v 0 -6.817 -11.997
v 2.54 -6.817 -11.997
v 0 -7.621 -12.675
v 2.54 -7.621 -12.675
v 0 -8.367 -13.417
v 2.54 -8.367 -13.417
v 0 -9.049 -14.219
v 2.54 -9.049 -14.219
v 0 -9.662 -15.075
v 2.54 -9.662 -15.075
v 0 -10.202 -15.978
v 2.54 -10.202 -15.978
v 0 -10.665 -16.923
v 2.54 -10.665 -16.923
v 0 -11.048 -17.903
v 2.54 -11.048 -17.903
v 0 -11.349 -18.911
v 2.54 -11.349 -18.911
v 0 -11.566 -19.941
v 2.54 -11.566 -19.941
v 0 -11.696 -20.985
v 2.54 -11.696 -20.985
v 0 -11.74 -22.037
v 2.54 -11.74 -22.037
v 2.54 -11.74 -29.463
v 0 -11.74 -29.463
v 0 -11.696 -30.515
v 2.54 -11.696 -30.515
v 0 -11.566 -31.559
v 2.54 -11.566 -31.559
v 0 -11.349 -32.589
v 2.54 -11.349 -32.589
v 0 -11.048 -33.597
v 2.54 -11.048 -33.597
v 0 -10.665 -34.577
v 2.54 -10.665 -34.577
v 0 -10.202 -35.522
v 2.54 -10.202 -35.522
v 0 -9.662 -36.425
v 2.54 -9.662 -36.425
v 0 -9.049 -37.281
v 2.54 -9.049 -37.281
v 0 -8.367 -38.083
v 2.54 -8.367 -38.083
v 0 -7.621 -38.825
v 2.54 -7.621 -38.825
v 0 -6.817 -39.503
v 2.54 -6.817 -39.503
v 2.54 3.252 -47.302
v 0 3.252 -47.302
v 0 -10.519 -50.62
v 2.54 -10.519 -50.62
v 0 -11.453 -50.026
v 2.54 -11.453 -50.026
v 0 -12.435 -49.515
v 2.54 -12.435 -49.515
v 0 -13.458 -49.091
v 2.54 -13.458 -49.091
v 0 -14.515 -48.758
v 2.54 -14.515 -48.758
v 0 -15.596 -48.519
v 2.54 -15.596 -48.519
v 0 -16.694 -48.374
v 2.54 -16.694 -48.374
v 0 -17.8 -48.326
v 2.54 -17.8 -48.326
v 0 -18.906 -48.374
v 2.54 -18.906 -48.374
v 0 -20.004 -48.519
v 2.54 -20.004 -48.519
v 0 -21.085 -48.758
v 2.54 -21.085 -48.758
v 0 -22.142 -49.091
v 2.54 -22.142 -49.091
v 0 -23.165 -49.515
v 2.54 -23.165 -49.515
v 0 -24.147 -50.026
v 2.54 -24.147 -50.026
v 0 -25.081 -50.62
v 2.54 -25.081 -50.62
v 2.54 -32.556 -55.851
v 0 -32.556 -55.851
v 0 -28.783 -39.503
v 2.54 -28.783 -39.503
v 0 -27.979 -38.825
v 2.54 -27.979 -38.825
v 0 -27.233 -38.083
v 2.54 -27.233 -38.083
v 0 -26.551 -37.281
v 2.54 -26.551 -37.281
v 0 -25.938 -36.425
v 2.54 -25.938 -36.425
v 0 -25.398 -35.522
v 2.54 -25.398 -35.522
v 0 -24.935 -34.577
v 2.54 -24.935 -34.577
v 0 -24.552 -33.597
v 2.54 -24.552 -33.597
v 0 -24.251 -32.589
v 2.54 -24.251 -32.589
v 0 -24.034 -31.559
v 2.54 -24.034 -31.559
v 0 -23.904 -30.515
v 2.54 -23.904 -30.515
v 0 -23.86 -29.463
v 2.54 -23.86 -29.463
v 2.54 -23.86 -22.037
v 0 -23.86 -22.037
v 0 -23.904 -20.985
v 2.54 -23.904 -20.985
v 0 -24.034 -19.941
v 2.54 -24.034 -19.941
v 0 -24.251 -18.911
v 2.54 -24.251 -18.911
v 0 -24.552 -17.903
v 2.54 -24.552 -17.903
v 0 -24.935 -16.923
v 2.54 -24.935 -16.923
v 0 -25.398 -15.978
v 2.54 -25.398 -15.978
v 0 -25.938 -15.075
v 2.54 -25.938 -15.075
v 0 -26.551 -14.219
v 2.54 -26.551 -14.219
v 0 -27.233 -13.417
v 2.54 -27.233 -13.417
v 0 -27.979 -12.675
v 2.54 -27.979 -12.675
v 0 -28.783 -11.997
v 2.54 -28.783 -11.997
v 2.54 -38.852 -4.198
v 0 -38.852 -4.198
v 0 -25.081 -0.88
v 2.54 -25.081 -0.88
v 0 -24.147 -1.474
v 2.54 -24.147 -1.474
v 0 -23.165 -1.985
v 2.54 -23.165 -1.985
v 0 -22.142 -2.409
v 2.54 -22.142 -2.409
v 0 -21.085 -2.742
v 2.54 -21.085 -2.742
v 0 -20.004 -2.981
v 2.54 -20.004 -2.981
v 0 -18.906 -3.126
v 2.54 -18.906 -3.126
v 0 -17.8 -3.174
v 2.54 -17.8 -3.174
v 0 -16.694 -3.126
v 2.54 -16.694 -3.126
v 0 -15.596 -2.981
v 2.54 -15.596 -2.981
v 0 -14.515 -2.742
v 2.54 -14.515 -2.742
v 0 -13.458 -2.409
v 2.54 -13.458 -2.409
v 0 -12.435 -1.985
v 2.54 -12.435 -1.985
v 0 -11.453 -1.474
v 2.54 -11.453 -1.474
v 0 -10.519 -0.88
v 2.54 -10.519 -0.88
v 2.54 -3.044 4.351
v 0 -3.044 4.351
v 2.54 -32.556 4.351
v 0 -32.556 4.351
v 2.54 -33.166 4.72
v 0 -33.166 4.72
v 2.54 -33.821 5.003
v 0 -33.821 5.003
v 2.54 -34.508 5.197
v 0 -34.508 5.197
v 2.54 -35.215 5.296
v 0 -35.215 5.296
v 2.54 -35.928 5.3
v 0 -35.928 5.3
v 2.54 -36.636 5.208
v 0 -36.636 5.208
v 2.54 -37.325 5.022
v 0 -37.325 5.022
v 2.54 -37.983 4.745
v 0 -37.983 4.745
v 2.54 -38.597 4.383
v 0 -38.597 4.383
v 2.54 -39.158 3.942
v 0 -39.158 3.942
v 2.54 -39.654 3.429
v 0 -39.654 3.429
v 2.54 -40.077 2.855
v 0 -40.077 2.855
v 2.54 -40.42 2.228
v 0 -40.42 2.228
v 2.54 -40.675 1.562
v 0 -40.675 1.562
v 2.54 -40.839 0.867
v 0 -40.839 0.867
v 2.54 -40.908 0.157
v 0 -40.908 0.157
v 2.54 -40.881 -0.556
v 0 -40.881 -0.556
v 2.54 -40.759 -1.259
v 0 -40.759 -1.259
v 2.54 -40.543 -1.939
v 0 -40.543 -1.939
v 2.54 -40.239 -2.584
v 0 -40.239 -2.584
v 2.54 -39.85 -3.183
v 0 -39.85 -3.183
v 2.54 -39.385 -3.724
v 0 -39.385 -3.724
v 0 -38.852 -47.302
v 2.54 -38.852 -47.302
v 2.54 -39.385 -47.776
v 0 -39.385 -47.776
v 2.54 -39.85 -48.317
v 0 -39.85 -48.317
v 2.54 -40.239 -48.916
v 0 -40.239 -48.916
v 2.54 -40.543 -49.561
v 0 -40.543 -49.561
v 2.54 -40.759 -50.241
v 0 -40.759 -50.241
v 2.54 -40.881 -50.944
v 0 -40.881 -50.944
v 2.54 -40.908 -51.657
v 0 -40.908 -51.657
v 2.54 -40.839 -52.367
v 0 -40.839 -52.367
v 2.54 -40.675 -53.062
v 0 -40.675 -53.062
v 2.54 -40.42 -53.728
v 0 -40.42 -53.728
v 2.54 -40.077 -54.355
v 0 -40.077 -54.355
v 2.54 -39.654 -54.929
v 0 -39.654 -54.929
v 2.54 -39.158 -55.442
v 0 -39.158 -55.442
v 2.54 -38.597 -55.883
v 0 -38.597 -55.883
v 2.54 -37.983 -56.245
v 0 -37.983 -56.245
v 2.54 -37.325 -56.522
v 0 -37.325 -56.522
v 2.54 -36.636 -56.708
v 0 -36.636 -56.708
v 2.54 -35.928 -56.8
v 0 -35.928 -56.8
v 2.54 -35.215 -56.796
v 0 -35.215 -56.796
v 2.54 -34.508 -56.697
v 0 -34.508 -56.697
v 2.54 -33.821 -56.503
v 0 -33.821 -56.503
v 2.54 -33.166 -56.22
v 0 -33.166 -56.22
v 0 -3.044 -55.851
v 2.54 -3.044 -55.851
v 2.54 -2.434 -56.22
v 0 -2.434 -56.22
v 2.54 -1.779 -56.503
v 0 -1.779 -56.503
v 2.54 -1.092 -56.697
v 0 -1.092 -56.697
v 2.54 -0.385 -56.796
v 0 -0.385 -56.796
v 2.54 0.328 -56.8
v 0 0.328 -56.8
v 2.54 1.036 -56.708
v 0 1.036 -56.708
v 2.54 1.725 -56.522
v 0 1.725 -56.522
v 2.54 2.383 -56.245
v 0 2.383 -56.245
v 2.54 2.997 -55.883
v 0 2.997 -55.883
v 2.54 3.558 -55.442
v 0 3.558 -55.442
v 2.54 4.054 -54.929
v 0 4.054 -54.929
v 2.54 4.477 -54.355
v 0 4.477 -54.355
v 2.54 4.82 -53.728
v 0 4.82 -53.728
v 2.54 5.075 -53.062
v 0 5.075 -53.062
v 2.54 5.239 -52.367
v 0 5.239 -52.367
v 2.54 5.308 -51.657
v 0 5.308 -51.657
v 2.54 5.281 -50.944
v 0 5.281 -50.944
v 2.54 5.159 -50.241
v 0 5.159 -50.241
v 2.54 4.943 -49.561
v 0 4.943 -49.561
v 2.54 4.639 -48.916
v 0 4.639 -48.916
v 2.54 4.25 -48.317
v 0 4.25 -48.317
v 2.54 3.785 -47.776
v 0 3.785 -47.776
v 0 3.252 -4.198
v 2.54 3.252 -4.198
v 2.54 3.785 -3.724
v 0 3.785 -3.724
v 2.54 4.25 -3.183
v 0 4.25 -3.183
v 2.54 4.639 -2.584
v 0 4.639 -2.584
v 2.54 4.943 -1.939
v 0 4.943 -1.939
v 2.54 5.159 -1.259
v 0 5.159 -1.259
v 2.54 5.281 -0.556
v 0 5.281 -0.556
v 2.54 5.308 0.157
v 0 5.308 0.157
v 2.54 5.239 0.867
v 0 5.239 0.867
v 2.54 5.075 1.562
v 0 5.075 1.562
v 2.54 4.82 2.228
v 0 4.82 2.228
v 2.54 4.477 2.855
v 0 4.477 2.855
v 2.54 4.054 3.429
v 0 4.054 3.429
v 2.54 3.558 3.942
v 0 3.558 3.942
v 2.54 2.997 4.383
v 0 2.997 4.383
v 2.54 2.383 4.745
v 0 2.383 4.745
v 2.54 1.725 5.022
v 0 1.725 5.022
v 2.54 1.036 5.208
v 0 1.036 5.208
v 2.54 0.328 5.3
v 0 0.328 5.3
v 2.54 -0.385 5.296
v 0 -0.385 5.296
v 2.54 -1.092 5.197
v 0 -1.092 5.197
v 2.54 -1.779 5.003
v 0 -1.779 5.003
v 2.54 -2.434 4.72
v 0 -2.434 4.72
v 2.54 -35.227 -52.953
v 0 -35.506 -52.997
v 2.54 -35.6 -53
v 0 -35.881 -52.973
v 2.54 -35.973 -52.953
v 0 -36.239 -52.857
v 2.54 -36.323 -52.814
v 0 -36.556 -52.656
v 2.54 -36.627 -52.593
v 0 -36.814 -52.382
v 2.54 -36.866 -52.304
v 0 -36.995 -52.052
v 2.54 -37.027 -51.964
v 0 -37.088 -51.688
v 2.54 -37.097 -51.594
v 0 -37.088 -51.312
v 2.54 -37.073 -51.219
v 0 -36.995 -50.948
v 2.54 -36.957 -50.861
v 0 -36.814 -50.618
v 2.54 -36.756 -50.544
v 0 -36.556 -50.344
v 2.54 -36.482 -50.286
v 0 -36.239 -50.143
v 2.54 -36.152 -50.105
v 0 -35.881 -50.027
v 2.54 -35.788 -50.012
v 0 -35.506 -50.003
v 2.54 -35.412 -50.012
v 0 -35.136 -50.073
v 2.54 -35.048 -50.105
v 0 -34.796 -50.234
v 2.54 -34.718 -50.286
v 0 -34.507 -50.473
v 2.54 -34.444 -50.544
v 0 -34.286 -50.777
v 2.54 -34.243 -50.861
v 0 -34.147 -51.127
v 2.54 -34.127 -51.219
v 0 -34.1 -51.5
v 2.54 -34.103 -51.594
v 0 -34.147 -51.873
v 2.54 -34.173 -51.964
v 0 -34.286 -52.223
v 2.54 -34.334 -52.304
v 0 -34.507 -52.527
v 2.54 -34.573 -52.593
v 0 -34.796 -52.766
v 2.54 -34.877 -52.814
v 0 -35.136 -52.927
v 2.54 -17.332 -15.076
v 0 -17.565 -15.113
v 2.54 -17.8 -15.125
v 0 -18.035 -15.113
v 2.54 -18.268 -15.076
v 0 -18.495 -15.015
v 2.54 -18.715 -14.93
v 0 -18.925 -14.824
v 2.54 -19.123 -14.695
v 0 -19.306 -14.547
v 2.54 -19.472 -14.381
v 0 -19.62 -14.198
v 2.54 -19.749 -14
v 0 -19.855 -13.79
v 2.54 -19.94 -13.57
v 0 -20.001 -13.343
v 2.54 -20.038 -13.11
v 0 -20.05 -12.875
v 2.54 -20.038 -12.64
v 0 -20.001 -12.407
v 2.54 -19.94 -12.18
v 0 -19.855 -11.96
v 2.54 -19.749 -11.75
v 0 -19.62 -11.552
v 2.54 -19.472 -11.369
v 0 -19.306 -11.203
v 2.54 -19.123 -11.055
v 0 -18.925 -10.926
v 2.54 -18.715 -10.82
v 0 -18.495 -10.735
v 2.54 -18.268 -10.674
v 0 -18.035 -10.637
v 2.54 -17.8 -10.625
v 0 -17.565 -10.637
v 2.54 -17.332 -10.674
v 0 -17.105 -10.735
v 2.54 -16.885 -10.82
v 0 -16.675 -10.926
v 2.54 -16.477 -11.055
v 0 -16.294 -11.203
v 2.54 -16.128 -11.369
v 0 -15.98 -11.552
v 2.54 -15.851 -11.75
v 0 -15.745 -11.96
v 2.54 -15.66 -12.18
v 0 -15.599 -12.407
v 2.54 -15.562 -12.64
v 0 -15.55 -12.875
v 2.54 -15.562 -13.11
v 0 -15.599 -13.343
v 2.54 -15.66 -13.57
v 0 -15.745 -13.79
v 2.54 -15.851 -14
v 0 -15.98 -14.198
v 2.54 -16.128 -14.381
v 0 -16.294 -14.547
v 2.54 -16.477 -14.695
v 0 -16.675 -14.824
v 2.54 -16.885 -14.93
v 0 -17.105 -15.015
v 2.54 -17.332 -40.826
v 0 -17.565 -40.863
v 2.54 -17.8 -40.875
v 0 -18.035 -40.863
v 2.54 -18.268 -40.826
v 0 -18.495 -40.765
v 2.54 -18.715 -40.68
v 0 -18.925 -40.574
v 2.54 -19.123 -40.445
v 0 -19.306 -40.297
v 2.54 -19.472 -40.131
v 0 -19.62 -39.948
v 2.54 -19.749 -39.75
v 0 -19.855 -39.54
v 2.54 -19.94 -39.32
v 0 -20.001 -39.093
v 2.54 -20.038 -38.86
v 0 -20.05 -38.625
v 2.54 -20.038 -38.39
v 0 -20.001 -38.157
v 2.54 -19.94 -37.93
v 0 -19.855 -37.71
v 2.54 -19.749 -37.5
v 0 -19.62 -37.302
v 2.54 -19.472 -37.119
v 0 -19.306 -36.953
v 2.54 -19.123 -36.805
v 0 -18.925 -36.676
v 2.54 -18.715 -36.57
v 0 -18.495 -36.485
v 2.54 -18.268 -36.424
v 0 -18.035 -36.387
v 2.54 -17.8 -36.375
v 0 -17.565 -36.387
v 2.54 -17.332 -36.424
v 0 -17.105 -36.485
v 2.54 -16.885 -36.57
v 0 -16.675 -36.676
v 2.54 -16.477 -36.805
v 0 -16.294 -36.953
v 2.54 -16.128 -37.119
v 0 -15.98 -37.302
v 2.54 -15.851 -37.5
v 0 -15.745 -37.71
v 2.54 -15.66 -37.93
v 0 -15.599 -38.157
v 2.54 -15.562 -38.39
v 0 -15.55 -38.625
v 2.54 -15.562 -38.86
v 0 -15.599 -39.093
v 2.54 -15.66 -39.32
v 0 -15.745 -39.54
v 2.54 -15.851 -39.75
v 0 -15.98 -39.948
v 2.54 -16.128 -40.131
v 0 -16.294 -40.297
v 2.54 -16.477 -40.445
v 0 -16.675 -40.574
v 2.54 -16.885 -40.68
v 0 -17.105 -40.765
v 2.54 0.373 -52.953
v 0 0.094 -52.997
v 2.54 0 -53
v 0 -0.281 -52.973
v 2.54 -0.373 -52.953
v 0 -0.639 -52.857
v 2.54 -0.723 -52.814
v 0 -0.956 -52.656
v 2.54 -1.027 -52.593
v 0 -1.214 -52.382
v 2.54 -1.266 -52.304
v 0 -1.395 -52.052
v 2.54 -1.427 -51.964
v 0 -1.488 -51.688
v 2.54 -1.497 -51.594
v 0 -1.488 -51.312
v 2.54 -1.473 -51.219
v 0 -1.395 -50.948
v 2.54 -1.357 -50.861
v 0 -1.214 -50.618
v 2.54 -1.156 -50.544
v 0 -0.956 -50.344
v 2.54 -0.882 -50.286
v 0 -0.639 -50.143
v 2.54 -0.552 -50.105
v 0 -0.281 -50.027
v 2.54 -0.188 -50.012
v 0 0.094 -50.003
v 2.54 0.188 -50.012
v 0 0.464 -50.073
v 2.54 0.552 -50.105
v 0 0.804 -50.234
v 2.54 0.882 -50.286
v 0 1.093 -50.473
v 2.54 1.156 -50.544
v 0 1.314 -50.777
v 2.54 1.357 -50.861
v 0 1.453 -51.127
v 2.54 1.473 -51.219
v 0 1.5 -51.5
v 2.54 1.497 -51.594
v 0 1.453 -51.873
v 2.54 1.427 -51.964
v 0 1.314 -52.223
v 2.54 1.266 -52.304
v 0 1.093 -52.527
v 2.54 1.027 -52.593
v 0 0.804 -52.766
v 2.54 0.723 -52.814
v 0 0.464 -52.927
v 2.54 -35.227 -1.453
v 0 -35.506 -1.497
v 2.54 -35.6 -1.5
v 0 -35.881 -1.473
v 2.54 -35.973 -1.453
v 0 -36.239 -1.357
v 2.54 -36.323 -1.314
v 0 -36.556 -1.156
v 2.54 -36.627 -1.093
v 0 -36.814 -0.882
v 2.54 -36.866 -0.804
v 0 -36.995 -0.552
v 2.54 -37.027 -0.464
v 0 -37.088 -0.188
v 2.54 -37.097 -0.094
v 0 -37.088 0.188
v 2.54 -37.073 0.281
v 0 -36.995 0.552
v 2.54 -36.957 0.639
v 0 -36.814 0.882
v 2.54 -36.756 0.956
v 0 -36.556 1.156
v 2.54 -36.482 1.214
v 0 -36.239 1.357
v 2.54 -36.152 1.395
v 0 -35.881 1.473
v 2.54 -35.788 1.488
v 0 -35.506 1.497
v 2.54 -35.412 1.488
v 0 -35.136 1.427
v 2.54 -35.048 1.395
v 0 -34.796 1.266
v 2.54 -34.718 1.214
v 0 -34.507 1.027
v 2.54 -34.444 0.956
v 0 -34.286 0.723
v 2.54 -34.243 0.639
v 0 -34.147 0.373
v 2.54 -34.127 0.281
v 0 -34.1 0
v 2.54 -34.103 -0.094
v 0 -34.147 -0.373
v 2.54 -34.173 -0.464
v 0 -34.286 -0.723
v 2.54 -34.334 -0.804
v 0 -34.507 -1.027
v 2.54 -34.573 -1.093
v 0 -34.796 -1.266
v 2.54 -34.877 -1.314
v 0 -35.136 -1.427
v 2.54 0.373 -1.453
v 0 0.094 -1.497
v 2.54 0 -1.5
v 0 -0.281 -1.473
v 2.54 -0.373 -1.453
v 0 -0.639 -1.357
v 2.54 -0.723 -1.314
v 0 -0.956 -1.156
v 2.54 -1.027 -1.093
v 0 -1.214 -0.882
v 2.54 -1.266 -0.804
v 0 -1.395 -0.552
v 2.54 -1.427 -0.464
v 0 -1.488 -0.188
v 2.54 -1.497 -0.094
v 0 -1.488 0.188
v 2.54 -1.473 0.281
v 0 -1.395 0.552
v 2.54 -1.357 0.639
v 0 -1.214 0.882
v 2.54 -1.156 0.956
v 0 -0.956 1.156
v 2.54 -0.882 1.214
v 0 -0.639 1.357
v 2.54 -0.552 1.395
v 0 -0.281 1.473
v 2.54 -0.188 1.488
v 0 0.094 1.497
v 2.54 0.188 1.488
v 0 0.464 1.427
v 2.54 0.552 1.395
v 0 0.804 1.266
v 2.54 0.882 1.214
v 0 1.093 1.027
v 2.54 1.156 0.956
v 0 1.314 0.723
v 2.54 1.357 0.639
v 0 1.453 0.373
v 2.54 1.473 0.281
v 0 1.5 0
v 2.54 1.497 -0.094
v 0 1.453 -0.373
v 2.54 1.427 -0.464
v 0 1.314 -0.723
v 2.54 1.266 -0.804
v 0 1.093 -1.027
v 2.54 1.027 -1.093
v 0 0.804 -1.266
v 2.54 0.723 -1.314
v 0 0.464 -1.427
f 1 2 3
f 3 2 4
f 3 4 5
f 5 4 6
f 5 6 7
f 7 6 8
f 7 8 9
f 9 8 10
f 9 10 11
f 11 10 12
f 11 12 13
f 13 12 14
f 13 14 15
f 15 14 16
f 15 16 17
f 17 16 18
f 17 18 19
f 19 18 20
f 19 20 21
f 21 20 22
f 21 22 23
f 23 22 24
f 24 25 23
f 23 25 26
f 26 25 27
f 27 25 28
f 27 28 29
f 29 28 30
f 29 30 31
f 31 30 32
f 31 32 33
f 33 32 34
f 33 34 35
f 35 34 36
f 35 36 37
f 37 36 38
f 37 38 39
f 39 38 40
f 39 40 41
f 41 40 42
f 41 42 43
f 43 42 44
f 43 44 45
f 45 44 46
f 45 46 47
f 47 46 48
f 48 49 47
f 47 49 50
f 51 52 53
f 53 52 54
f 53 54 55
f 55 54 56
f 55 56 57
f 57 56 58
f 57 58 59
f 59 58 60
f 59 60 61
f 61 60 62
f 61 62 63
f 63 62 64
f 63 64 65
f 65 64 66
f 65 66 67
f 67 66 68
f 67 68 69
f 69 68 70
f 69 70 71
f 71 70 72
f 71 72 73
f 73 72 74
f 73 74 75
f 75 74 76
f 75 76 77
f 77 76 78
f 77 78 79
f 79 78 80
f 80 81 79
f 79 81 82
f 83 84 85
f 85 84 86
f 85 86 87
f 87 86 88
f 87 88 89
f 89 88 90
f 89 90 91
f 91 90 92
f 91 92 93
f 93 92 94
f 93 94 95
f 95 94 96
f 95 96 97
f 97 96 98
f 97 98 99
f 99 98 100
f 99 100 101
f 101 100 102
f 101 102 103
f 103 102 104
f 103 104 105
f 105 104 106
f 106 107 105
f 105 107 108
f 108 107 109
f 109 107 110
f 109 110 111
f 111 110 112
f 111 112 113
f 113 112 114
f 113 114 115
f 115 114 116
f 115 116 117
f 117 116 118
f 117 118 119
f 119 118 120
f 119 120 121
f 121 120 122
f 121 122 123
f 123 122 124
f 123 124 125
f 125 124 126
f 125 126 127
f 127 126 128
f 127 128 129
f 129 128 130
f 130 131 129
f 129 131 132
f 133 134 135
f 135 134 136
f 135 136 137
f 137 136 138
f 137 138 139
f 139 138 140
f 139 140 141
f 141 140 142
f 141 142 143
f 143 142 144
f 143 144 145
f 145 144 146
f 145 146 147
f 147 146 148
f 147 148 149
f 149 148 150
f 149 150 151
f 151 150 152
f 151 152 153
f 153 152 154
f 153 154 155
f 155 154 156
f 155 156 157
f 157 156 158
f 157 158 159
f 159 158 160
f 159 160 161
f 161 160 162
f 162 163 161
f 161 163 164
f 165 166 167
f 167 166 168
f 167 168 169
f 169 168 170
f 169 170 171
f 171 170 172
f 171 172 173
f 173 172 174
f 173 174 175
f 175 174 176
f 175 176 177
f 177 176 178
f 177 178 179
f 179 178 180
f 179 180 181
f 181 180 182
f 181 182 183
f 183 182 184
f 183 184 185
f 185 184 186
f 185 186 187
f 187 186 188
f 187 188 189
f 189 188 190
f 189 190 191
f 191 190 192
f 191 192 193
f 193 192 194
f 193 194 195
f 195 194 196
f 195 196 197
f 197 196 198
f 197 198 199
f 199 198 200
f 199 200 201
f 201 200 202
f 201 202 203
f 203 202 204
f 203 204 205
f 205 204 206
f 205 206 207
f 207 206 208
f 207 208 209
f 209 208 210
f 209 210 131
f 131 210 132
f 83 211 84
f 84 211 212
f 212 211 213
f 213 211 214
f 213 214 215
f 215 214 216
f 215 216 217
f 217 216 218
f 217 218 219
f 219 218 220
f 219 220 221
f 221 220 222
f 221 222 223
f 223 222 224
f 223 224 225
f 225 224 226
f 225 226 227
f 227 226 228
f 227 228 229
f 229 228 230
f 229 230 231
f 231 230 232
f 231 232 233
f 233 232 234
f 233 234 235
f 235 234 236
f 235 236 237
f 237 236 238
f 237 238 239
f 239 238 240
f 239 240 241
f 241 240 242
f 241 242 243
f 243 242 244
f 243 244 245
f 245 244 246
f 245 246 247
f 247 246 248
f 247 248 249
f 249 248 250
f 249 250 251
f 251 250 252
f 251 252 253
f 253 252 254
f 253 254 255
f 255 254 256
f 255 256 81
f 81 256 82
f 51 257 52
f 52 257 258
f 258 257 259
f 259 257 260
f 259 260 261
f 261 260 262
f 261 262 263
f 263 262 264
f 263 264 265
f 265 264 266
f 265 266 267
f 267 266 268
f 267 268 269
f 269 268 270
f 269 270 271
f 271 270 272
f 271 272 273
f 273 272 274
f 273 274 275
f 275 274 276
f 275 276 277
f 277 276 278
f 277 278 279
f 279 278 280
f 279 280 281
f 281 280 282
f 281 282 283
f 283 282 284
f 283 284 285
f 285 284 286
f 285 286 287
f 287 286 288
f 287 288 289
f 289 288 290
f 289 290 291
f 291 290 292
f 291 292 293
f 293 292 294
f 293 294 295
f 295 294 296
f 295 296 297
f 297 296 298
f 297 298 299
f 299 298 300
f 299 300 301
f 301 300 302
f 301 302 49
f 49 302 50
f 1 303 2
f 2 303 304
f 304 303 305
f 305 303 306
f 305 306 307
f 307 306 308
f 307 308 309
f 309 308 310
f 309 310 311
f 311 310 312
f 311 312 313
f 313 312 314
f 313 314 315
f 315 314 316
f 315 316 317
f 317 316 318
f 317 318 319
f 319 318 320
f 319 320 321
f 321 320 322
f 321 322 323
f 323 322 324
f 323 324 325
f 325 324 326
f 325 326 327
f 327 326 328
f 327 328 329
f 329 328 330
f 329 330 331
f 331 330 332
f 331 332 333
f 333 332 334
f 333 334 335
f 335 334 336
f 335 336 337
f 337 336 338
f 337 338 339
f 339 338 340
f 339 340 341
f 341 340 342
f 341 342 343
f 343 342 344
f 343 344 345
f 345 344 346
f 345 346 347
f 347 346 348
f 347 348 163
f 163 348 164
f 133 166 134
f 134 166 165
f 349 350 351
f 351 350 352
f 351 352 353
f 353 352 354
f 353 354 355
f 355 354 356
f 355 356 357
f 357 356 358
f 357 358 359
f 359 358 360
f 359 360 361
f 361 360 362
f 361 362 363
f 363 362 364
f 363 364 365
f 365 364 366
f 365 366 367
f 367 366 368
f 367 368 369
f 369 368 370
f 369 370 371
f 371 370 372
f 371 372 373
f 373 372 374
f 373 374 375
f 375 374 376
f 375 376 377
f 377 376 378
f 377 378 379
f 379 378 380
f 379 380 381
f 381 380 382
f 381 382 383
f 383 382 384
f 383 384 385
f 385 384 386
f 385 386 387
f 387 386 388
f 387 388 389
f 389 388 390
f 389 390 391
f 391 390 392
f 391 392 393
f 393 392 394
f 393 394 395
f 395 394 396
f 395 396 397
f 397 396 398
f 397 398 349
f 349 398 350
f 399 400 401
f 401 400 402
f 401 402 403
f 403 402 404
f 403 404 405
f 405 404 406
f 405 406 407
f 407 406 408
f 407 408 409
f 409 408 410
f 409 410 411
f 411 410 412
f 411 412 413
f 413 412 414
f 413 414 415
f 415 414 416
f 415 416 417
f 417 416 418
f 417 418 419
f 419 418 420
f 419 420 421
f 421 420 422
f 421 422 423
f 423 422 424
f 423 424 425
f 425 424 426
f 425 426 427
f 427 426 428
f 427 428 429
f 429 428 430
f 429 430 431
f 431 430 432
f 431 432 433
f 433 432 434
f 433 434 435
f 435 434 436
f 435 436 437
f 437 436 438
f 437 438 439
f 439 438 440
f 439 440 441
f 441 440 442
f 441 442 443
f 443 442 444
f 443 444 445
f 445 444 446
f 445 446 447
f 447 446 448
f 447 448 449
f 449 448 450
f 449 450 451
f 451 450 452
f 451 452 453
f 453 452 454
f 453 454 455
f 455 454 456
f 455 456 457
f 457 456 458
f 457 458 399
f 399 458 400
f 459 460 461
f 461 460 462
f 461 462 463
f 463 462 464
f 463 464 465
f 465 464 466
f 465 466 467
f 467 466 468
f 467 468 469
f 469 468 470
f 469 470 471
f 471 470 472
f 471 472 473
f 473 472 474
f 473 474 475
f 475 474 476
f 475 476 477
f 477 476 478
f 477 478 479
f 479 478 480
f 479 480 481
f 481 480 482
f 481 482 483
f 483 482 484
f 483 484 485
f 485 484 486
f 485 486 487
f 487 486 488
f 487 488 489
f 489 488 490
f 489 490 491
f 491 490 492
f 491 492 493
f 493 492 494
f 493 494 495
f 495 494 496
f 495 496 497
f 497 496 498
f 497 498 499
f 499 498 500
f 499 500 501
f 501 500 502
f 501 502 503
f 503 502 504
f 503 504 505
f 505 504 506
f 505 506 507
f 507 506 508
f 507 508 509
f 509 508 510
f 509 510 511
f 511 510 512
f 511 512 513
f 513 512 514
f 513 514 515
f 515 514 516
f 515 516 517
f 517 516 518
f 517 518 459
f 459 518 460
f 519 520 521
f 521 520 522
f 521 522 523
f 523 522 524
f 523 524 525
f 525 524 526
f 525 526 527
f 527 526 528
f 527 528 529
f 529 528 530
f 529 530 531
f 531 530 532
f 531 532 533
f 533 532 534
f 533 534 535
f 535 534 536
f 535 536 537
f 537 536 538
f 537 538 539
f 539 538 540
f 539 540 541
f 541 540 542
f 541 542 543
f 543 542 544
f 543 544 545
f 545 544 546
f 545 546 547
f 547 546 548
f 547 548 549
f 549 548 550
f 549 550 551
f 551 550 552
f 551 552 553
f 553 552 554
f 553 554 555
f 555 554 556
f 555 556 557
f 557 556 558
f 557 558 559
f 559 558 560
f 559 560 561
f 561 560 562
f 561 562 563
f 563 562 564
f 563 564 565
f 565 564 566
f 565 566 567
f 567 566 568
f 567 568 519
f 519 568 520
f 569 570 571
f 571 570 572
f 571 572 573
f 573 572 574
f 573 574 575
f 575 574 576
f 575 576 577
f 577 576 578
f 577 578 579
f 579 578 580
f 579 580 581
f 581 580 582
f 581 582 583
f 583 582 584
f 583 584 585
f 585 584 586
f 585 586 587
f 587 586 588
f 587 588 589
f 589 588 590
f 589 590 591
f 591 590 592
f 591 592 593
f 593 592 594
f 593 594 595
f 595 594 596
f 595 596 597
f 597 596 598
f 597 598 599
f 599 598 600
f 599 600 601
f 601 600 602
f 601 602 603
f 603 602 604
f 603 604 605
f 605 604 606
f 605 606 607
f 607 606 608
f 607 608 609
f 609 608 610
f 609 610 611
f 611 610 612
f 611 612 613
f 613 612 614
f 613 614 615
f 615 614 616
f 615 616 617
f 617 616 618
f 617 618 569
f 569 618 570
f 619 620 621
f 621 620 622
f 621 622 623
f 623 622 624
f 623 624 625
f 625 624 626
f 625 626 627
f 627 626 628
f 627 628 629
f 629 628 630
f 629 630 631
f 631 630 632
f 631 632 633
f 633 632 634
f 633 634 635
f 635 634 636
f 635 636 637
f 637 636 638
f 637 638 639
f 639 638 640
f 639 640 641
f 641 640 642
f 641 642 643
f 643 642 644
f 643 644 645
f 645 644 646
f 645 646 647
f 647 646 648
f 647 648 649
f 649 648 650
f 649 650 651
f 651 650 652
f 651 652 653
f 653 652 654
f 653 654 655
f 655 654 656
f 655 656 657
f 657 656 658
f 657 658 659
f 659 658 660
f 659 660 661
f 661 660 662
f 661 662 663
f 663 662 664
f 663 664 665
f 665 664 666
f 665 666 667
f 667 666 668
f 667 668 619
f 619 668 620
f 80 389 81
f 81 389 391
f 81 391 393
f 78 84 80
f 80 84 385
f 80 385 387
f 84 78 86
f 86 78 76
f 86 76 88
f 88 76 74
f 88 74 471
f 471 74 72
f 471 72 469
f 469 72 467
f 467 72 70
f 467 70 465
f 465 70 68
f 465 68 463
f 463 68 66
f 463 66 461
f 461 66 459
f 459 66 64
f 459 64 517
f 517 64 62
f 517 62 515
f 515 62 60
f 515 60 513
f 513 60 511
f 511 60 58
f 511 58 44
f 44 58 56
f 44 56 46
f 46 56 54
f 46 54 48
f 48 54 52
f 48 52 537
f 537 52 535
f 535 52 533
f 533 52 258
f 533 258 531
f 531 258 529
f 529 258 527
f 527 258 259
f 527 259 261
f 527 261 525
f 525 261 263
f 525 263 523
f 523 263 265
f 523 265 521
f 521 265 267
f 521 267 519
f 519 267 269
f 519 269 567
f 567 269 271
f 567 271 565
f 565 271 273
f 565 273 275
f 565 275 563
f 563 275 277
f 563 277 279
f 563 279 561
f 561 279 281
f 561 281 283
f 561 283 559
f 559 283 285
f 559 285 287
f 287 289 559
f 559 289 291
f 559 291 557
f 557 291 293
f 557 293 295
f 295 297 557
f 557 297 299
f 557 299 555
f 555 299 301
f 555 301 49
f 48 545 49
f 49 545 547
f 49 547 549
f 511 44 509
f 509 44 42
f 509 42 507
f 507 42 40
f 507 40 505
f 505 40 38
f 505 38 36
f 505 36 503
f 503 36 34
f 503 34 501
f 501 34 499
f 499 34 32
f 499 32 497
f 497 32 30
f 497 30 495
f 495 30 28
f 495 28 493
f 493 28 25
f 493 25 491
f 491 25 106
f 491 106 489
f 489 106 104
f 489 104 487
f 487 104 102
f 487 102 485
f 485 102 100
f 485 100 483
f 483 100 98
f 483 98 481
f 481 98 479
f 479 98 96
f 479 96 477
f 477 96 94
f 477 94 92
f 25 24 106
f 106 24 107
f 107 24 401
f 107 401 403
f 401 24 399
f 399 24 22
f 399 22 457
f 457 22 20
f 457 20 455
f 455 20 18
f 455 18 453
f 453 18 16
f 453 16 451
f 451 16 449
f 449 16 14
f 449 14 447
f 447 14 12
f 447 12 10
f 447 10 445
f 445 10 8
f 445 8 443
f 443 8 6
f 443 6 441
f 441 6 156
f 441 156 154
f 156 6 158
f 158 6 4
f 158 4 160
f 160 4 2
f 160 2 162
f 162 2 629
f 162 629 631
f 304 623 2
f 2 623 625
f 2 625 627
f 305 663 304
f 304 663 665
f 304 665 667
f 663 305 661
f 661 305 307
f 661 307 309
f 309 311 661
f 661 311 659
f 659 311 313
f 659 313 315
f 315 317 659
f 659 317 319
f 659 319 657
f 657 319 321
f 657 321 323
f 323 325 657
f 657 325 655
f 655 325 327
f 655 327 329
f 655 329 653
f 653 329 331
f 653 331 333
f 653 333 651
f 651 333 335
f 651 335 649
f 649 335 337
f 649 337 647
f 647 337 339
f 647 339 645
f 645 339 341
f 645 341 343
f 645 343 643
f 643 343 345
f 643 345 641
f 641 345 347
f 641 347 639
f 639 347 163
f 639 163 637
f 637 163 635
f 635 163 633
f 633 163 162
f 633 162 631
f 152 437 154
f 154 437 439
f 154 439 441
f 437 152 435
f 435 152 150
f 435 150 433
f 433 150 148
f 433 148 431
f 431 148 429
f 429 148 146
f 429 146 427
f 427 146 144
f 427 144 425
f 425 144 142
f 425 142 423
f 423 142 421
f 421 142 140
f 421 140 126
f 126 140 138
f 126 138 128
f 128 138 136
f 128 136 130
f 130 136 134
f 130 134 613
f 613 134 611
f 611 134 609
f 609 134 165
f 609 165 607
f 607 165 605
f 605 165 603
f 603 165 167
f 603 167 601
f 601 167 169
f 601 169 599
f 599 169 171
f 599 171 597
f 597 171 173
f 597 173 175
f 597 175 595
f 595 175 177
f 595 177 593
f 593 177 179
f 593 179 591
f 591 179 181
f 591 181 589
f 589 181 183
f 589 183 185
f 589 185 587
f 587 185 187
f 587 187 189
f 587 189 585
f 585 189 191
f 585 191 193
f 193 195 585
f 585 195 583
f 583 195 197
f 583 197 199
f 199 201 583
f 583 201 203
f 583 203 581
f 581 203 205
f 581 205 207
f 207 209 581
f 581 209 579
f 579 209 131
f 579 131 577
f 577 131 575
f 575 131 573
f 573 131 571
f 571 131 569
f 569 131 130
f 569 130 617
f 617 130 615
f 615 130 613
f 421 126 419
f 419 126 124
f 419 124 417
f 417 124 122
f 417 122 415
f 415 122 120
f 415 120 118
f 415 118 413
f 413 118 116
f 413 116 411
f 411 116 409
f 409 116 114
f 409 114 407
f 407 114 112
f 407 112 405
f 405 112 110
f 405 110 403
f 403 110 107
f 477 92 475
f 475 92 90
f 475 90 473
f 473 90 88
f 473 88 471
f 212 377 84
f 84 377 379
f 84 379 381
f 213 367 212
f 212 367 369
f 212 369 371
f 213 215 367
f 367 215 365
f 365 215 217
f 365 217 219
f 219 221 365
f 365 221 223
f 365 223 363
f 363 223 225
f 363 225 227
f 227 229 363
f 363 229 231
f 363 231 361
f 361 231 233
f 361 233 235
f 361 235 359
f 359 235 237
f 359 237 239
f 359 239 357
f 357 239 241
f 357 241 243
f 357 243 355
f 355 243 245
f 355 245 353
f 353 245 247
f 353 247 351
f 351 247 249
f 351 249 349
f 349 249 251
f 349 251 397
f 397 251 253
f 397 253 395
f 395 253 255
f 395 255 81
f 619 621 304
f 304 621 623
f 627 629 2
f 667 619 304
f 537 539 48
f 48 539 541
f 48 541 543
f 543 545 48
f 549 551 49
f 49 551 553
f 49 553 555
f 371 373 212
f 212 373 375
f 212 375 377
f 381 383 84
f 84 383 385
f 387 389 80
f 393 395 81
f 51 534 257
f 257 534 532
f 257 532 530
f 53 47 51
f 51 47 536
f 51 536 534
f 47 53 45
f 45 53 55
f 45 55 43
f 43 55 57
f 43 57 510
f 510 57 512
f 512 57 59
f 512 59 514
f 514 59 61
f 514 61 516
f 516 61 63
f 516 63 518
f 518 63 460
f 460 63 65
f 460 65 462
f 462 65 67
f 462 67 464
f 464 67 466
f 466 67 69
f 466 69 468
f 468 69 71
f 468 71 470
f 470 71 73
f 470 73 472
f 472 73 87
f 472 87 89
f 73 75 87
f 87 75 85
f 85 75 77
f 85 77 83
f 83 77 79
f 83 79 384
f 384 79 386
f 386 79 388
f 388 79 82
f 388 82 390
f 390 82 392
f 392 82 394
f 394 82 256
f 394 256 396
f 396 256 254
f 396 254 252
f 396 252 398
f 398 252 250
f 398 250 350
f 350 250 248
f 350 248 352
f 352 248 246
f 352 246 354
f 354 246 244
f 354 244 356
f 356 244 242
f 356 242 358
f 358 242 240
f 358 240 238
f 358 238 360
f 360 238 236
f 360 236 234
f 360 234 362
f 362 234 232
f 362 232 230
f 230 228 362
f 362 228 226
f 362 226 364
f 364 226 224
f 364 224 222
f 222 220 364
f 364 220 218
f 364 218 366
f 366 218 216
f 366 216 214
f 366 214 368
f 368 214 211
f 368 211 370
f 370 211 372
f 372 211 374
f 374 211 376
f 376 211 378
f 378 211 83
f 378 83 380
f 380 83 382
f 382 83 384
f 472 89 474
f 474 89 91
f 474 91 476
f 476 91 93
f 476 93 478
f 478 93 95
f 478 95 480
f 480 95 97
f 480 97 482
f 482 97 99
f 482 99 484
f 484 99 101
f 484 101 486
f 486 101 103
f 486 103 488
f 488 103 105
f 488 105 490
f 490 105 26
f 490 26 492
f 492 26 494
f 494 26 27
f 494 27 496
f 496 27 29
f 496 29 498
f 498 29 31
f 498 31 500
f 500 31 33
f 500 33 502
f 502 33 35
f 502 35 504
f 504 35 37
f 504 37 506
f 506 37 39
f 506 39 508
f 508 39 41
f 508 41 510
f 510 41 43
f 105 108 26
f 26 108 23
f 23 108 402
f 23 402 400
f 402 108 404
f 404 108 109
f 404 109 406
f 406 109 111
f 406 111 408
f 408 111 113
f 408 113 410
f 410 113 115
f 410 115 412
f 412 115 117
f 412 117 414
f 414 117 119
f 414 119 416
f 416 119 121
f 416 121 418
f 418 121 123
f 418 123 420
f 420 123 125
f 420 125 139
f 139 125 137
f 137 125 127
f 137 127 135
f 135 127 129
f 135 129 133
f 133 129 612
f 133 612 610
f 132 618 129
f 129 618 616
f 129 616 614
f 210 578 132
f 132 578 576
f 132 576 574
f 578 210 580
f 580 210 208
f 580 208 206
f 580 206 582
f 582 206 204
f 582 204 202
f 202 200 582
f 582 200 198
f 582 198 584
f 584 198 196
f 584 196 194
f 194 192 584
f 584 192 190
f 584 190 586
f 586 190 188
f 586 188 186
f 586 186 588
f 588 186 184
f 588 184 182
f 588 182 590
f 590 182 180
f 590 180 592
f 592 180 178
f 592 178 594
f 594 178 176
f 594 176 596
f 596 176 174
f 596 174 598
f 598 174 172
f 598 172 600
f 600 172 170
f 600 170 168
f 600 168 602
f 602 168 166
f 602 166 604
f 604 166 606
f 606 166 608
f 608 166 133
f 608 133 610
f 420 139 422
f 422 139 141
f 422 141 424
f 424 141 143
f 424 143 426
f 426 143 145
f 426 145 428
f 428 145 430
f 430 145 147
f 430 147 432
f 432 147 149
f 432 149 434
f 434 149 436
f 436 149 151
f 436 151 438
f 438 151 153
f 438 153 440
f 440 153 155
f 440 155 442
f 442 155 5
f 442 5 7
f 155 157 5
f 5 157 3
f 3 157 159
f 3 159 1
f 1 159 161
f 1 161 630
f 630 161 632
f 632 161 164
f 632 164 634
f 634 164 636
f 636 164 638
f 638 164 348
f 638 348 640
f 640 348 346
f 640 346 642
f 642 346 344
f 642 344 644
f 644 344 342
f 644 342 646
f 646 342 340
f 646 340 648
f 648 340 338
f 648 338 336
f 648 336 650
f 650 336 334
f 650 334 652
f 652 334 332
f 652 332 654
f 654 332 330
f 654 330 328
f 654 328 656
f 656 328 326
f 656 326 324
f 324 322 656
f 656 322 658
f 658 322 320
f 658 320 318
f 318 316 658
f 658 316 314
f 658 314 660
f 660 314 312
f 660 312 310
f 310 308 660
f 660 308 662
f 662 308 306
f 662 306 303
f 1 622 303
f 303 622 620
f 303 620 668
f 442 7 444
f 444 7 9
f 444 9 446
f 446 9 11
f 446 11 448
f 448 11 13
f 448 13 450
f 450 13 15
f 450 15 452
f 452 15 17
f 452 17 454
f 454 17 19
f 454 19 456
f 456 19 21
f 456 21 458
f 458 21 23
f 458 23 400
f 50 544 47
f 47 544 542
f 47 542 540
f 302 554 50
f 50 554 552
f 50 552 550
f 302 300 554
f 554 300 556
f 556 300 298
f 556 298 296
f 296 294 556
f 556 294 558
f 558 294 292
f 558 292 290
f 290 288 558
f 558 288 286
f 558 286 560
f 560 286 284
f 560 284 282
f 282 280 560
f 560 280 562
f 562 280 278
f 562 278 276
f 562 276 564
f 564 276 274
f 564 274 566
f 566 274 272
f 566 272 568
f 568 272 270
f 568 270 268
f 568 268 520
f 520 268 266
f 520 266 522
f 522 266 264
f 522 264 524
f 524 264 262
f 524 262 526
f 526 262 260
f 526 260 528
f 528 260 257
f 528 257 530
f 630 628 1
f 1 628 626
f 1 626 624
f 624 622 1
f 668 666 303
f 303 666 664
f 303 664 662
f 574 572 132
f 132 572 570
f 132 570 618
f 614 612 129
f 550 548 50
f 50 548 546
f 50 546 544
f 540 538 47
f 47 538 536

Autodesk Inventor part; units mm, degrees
ref_plane "YZ Plane" through (0, 0, 0) normal (1, 0, 0) x (0, 1, 0)
ref_plane "XZ Plane" through (0, 0, 0) normal (0, 1, 0) x (-1, 0, 0)
ref_plane "XY Plane" through (0, 0, 0) normal (0, 0, 1) x (1, 0, 0)
sketch "Sketch1" plane through (0, 0, 0) normal (1, 0, 0) x (0, 1, 0)
  circle A0 centre (0, 0) radius 1.5
  line L0 (0, 0) -> (-35.6, 0)
  circle A1 centre (-35.6, 0) radius 1.5
  line L1 (0, 0) -> (0, -51.5)
  circle A2 centre (0, -51.5) radius 1.5
  circle A3 centre (-35.6, -51.5) radius 1.5
  line L2 (0, 0) -> (-35.6, 0)
  line L3 (-35.6, 0) -> (-35.6, -51.5)
  line L4 (-35.6, -51.5) -> (0, -51.5)
  line L5 (0, -51.5) -> (0, 0)
  line L6 (-17.8, 0) -> (-17.8, -51.5)
  line L7 (-17.8, -25.75) -> (-17.8, 0)
  line L8 (-17.8, -12.875) -> (-17.8, -51.5)
  line L9 (-17.8, -25.75) -> (-17.8, -51.5)
  line L10 (-17.8, -38.625) -> (-17.8, -12.875)
  circle A4 centre (-17.8, -12.875) radius 2.25
  circle A5 centre (-17.8, -38.625) radius 2.25
  line L11 (-15.9797, -9.3512) -> (-0.86, 1.229)
  line L12 (-19.6203, -9.3512) -> (-34.74, 1.229)
  line L13 (-15.55, -15.4984) -> (-15.55, -36.0016)
  line L14 (-20.05, -36.0016) -> (-20.05, -15.4984)
  line L15 (-19.6203, -42.1488) -> (-34.74, -52.729)
  line L16 (-21.2808, -38.5117) -> (-36.5185, -50.3141)
  line L17 (-21.2808, -12.9883) -> (-36.5185, -1.1859)
  line L18 (-14.3192, -12.9883) -> (0.9185, -1.1859)
  line L19 (-14.3192, -38.5117) -> (0.9185, -50.3141)
  line L20 (-15.9797, -42.1488) -> (-0.86, -52.729)
  arc A6 (-14.3192, -12.9883) -> (-15.55, -15.4984) centre (-12.375, -15.4984) ccw
  arc A7 (-15.55, -36.0016) -> (-14.3192, -38.5117) centre (-12.375, -36.0016) ccw
  arc A8 (-21.2808, -38.5117) -> (-20.05, -36.0016) centre (-23.225, -36.0016) ccw
  arc A9 (-20.05, -15.4984) -> (-21.2808, -12.9883) centre (-23.225, -15.4984) ccw
  arc A10 (-19.6203, -9.3512) -> (-15.9797, -9.3512) centre (-17.8, -6.7499) ccw
  arc A11 (-15.9797, -42.1488) -> (-19.6203, -42.1488) centre (-17.8, -44.7501) ccw
  line L21 (1.6962, -2.1899) -> (-13.5415, -13.9923)
  arc A12 (-13.5415, -13.9923) -> (-14.28, -15.4984) centre (-12.375, -15.4984) ccw
  line L22 (-14.28, -15.4984) -> (-14.28, -36.0016)
  arc A13 (-14.28, -36.0016) -> (-13.5415, -37.5077) centre (-12.375, -36.0016) ccw
  line L23 (-13.5415, -37.5077) -> (1.6962, -49.3101)
  line L24 (-37.2962, -2.1899) -> (-22.0585, -13.9923)
  arc A14 (-21.32, -15.4984) -> (-22.0585, -13.9923) centre (-23.225, -15.4984) ccw
  line L25 (-21.32, -15.4984) -> (-21.32, -36.0016)
  arc A15 (-22.0585, -37.5077) -> (-21.32, -36.0016) centre (-23.225, -36.0016) ccw
  line L26 (-22.0585, -37.5077) -> (-37.2962, -49.3101)
  line L27 (-1.5881, 2.2695) -> (-16.7078, -8.3107)
  arc A16 (-18.8922, -8.3107) -> (-16.7078, -8.3107) centre (-17.8, -6.7499) ccw
  line L28 (-18.8922, -8.3107) -> (-34.0119, 2.2695)
  circle A17 centre (0, 0) radius 2.77
  circle A18 centre (-17.8, -12.875) radius 3.52
  circle A19 centre (-17.8, -38.625) radius 3.52
  circle A20 centre (-35.6, 0) radius 2.77
  circle A21 centre (-35.6, -51.5) radius 2.77
  circle A22 centre (0, -51.5) radius 2.77
  line L29 (-1.5881, -53.7695) -> (-16.7078, -43.1893)
  arc A23 (-16.7078, -43.1893) -> (-18.8922, -43.1893) centre (-17.8, -44.7501) ccw
  line L30 (-18.8922, -43.1893) -> (-34.0119, -53.7695)
  point P0 (-17.8, -10.625)
  point P1 (-15.55, -12.875)
  point P2 (-15.55, -38.625)
  point P3 (-20.05, -38.625)
  point P4 (-20.05, -12.875)
  point P5 (-17.8, -40.875)
  point P6 (-18.8754, -36.6486)
  point P7 (-18.8754, -14.8514)
  point P8 (-16.7246, -14.8514)
  point P9 (-16.7246, -36.6486)
  point P10 (-34.0119, 2.2695)
  point P11 (1.6962, -49.3101)
  dimension "d0" = 3
  dimension "d1" = 35.6
  dimension "d2" = 51.5
  dimension "d3" = 4.5
  dimension "d4" = 3.175
  dimension "d5" = 1.27
  dimension "d6" = 1.27
  dimension "d7" = 1.27
  dimension "d8" = 1.27
  dimension "d9" = 1.27
  dimension "d10" = 1.27
  dimension "d11" = 1.27
  dimension "d12" = 1.27
  dimension "d13" = 1.27
  dimension "d14" = 1.27
extrude "Extrusion1" add sketch "Sketch1" along normal blind 2.54 contours A0 L11 L0 A17 L1 L18 | A0 L0 L11 | L18 L1 A0 | A0 L1 L18 A17 L11 L0 | L11 A17 L0 | L1 A17 L18 | A17 L11 A10 A18 L6 A16 L27 L0 | L0 L27 A17 | A17 L18 A18 A10 L11 | A17 L21 L1 | L1 L21 A12 L22 A13 L23 A22 L19 A19 L13 A18 L18 A17 | A18 L13 A6 L18 | L18 A6 L13 A18 L6 A4 A10 | A10 L6 A18 | L23 A22 L1 | L13 A19 L6 A18 | L28 A16 L6 A18 A10 L12 A20 L0 | L0 A20 L28 | A10 A18 L6 | L6 A4 A18 L14 A9 L17 A10 | A22 L4 L20 A2 L19 L1 | L1 L19 A22 | A19 L19 A7 L13 | L13 A7 L19 A19 A11 L6 A5 | L6 A19 L14 A18 | A20 L12 L0 | L0 L12 A1 L17 L3 A20 | A18 L17 A20 L12 A10 | L19 A2 L1 | L1 A2 L4 L20 A22 L19 | A22 L20 A11 A19 L19 | L6 A5 A11 A19 L16 A8 L14 | A18 L17 A9 L14 | L14 A19 L16 A21 L3 L26 A15 L25 A14 L24 A20 L17 A18 | L12 A20 L17 L3 A1 L0 | L0 A1 L12 | A20 L3 L24 | A22 L4 L29 A23 L6 A19 A11 L20 | L20 L4 A22 | L29 L4 A22 | L14 A8 L16 A19 | A20 L3 L17 | A2 L20 L4 | A19 L6 A11 | A19 A11 L15 A21 L16 | L3 L17 A1 | L3 A21 L26 | L6 A19 A11 | L6 A23 L30 L4 A21 L15 A11 A19 | A21 L15 L4 A3 L3 L16 | L16 L3 A21 | L3 L16 A3 L15 L4 A21 | L30 A21 L4 | L3 A3 L16 | A21 L4 L15 | L15 A3 L4
sketch "Sketch2" plane through (2.54, 0, 0) normal (1, 0, 0) x (0, 0, -1)
  circle A0 centre (0, 0) radius 1.5 projected
  circle A1 centre (0, 0) radius 1.5
  circle A2 centre (12.875, -17.8) radius 2.25 projected
  circle A3 centre (12.875, -17.8) radius 2.25
  circle A4 centre (38.625, -17.8) radius 2.25 projected
  circle A5 centre (38.625, -17.8) radius 2.25
  circle A6 centre (51.5, 0) radius 1.5 projected
  circle A7 centre (51.5, 0) radius 1.5
  circle A8 centre (51.5, -35.6) radius 1.5 projected
  circle A9 centre (51.5, -35.6) radius 1.5
  circle A10 centre (0, -35.6) radius 1.5 projected
  circle A11 centre (0, -35.6) radius 1.5
  line L0 (13.9923, -13.5415) -> (2.1899, 1.6962) projected
  arc A12 (2.1899, 1.6962) -> (-2.2695, -1.5881) centre (0, 0) ccw projected
  arc A13 (2.1899, 1.6962) -> (-2.2695, -1.5881) centre (0, 0) ccw
  arc A14 (53.7695, -1.5881) -> (49.3101, 1.6962) centre (51.5, 0) ccw projected
  arc A15 (53.7695, -1.5881) -> (49.3101, 1.6962) centre (51.5, 0) ccw
  arc A16 (49.3101, -37.2962) -> (53.7695, -34.0119) centre (51.5, -35.6) ccw projected
  arc A17 (49.3101, -37.2962) -> (53.7695, -34.0119) centre (51.5, -35.6) ccw
  arc A18 (-2.2695, -34.0119) -> (2.1899, -37.2962) centre (0, -35.6) ccw projected
  arc A19 (-2.2695, -34.0119) -> (2.1899, -37.2962) centre (0, -35.6) ccw
  arc A20 (15.4984, -21.32) -> (13.9923, -22.0585) centre (15.4984, -23.225) ccw projected
  arc A21 (15.4984, -21.32) -> (13.9923, -22.0585) centre (15.4984, -23.225) ccw
  arc A22 (8.3107, -18.8922) -> (8.3107, -16.7078) centre (6.7499, -17.8) ccw projected
  arc A23 (8.3107, -18.8922) -> (8.3107, -16.7078) centre (6.7499, -17.8) ccw
  arc A24 (13.9923, -13.5415) -> (15.4984, -14.28) centre (15.4984, -12.375) ccw projected
  arc A25 (13.9923, -13.5415) -> (15.4984, -14.28) centre (15.4984, -12.375) ccw
  arc A26 (36.0016, -14.28) -> (37.5077, -13.5415) centre (36.0016, -12.375) ccw projected
  arc A27 (36.0016, -14.28) -> (37.5077, -13.5415) centre (36.0016, -12.375) ccw
  arc A28 (37.5077, -22.0585) -> (36.0016, -21.32) centre (36.0016, -23.225) ccw projected
  arc A29 (37.5077, -22.0585) -> (36.0016, -21.32) centre (36.0016, -23.225) ccw
  arc A30 (43.1893, -16.7078) -> (43.1893, -18.8922) centre (44.7501, -17.8) ccw projected
  arc A31 (43.1893, -16.7078) -> (43.1893, -18.8922) centre (44.7501, -17.8) ccw
  line L1 (2.1899, 1.6962) -> (13.9923, -13.5415)
  line L2 (-2.2695, -1.5881) -> (8.3107, -16.7078) projected
  line L3 (8.3107, -16.7078) -> (-2.2695, -1.5881)
  line L4 (8.3107, -18.8922) -> (-2.2695, -34.0119) projected
  line L5 (8.3107, -18.8922) -> (-2.2695, -34.0119)
  line L6 (2.1899, -37.2962) -> (13.9923, -22.0585)
  line L7 (15.4984, -21.32) -> (36.0016, -21.32)
  line L8 (36.0016, -14.28) -> (15.4984, -14.28) projected
  line L9 (36.0016, -14.28) -> (15.4984, -14.28)
  line L10 (49.3101, 1.6962) -> (37.5077, -13.5415) projected
  line L11 (49.3101, 1.6962) -> (37.5077, -13.5415)
  line L12 (43.1893, -16.7078) -> (53.7695, -1.5881)
  line L13 (53.7695, -34.0119) -> (43.1893, -18.8922) projected
  line L14 (43.1893, -18.8922) -> (53.7695, -34.0119)
  line L15 (37.5077, -22.0585) -> (49.3101, -37.2962)
  arc A32 (-4.3506, -32.5556) -> (4.198, -38.8516) centre (0, -35.6) ccw
  line L16 (-4.3506, -32.5556) -> (5.9748, -17.8)
  line L17 (5.9748, -17.8) -> (-4.3506, -3.0444)
  arc A33 (4.198, 3.2516) -> (-4.3506, -3.0444) centre (0, 0) ccw
  line L18 (4.198, 3.2516) -> (15.8097, -11.74)
  line L19 (15.8097, -11.74) -> (35.6903, -11.74)
  line L20 (35.6903, -11.74) -> (47.302, 3.2516)
  arc A34 (55.8506, -3.0444) -> (47.302, 3.2516) centre (51.5, 0) ccw
  line L21 (47.302, -38.8516) -> (35.6903, -23.86)
  line L22 (35.6903, -23.86) -> (15.8097, -23.86)
  line L23 (15.8097, -23.86) -> (4.198, -38.8516)
  arc A35 (-4.3506, -32.5556) -> (4.198, -38.8516) centre (0, -35.6) ccw
  line L24 (35.4996, -11.9862) -> (47.302, 3.2516)
  arc A36 (55.8506, -3.0444) -> (47.302, 3.2516) centre (51.5, 0) ccw
  line L25 (55.8506, -3.0444) -> (45.5252, -17.8)
  line L26 (45.5252, -17.8) -> (55.8506, -32.5556)
  circle A37 centre (51.5, -35.6) radius 5.31
  point P0 (55.8506, -3.0444)
  point P1 (4.198, -38.8516)
  dimension "d17" = 2.54
  dimension "d18" = 2.54
  dimension "d19" = 2.54
extrude "Extrusion2" add sketch "Sketch2" against normal up to surface (2.54 mm away)
fillet "Fillet1" radius 12.7 6 edges at (1.27, -17.8, -5.9748) (1.27, -23.86, -15.8097) (1.27, -23.86, -35.6903) (1.27, -17.8, -45.5252) (1.27, -11.74, -35.6903) (1.27, -11.74, -15.8097)
properties part number "pump mount_3DPrint"
